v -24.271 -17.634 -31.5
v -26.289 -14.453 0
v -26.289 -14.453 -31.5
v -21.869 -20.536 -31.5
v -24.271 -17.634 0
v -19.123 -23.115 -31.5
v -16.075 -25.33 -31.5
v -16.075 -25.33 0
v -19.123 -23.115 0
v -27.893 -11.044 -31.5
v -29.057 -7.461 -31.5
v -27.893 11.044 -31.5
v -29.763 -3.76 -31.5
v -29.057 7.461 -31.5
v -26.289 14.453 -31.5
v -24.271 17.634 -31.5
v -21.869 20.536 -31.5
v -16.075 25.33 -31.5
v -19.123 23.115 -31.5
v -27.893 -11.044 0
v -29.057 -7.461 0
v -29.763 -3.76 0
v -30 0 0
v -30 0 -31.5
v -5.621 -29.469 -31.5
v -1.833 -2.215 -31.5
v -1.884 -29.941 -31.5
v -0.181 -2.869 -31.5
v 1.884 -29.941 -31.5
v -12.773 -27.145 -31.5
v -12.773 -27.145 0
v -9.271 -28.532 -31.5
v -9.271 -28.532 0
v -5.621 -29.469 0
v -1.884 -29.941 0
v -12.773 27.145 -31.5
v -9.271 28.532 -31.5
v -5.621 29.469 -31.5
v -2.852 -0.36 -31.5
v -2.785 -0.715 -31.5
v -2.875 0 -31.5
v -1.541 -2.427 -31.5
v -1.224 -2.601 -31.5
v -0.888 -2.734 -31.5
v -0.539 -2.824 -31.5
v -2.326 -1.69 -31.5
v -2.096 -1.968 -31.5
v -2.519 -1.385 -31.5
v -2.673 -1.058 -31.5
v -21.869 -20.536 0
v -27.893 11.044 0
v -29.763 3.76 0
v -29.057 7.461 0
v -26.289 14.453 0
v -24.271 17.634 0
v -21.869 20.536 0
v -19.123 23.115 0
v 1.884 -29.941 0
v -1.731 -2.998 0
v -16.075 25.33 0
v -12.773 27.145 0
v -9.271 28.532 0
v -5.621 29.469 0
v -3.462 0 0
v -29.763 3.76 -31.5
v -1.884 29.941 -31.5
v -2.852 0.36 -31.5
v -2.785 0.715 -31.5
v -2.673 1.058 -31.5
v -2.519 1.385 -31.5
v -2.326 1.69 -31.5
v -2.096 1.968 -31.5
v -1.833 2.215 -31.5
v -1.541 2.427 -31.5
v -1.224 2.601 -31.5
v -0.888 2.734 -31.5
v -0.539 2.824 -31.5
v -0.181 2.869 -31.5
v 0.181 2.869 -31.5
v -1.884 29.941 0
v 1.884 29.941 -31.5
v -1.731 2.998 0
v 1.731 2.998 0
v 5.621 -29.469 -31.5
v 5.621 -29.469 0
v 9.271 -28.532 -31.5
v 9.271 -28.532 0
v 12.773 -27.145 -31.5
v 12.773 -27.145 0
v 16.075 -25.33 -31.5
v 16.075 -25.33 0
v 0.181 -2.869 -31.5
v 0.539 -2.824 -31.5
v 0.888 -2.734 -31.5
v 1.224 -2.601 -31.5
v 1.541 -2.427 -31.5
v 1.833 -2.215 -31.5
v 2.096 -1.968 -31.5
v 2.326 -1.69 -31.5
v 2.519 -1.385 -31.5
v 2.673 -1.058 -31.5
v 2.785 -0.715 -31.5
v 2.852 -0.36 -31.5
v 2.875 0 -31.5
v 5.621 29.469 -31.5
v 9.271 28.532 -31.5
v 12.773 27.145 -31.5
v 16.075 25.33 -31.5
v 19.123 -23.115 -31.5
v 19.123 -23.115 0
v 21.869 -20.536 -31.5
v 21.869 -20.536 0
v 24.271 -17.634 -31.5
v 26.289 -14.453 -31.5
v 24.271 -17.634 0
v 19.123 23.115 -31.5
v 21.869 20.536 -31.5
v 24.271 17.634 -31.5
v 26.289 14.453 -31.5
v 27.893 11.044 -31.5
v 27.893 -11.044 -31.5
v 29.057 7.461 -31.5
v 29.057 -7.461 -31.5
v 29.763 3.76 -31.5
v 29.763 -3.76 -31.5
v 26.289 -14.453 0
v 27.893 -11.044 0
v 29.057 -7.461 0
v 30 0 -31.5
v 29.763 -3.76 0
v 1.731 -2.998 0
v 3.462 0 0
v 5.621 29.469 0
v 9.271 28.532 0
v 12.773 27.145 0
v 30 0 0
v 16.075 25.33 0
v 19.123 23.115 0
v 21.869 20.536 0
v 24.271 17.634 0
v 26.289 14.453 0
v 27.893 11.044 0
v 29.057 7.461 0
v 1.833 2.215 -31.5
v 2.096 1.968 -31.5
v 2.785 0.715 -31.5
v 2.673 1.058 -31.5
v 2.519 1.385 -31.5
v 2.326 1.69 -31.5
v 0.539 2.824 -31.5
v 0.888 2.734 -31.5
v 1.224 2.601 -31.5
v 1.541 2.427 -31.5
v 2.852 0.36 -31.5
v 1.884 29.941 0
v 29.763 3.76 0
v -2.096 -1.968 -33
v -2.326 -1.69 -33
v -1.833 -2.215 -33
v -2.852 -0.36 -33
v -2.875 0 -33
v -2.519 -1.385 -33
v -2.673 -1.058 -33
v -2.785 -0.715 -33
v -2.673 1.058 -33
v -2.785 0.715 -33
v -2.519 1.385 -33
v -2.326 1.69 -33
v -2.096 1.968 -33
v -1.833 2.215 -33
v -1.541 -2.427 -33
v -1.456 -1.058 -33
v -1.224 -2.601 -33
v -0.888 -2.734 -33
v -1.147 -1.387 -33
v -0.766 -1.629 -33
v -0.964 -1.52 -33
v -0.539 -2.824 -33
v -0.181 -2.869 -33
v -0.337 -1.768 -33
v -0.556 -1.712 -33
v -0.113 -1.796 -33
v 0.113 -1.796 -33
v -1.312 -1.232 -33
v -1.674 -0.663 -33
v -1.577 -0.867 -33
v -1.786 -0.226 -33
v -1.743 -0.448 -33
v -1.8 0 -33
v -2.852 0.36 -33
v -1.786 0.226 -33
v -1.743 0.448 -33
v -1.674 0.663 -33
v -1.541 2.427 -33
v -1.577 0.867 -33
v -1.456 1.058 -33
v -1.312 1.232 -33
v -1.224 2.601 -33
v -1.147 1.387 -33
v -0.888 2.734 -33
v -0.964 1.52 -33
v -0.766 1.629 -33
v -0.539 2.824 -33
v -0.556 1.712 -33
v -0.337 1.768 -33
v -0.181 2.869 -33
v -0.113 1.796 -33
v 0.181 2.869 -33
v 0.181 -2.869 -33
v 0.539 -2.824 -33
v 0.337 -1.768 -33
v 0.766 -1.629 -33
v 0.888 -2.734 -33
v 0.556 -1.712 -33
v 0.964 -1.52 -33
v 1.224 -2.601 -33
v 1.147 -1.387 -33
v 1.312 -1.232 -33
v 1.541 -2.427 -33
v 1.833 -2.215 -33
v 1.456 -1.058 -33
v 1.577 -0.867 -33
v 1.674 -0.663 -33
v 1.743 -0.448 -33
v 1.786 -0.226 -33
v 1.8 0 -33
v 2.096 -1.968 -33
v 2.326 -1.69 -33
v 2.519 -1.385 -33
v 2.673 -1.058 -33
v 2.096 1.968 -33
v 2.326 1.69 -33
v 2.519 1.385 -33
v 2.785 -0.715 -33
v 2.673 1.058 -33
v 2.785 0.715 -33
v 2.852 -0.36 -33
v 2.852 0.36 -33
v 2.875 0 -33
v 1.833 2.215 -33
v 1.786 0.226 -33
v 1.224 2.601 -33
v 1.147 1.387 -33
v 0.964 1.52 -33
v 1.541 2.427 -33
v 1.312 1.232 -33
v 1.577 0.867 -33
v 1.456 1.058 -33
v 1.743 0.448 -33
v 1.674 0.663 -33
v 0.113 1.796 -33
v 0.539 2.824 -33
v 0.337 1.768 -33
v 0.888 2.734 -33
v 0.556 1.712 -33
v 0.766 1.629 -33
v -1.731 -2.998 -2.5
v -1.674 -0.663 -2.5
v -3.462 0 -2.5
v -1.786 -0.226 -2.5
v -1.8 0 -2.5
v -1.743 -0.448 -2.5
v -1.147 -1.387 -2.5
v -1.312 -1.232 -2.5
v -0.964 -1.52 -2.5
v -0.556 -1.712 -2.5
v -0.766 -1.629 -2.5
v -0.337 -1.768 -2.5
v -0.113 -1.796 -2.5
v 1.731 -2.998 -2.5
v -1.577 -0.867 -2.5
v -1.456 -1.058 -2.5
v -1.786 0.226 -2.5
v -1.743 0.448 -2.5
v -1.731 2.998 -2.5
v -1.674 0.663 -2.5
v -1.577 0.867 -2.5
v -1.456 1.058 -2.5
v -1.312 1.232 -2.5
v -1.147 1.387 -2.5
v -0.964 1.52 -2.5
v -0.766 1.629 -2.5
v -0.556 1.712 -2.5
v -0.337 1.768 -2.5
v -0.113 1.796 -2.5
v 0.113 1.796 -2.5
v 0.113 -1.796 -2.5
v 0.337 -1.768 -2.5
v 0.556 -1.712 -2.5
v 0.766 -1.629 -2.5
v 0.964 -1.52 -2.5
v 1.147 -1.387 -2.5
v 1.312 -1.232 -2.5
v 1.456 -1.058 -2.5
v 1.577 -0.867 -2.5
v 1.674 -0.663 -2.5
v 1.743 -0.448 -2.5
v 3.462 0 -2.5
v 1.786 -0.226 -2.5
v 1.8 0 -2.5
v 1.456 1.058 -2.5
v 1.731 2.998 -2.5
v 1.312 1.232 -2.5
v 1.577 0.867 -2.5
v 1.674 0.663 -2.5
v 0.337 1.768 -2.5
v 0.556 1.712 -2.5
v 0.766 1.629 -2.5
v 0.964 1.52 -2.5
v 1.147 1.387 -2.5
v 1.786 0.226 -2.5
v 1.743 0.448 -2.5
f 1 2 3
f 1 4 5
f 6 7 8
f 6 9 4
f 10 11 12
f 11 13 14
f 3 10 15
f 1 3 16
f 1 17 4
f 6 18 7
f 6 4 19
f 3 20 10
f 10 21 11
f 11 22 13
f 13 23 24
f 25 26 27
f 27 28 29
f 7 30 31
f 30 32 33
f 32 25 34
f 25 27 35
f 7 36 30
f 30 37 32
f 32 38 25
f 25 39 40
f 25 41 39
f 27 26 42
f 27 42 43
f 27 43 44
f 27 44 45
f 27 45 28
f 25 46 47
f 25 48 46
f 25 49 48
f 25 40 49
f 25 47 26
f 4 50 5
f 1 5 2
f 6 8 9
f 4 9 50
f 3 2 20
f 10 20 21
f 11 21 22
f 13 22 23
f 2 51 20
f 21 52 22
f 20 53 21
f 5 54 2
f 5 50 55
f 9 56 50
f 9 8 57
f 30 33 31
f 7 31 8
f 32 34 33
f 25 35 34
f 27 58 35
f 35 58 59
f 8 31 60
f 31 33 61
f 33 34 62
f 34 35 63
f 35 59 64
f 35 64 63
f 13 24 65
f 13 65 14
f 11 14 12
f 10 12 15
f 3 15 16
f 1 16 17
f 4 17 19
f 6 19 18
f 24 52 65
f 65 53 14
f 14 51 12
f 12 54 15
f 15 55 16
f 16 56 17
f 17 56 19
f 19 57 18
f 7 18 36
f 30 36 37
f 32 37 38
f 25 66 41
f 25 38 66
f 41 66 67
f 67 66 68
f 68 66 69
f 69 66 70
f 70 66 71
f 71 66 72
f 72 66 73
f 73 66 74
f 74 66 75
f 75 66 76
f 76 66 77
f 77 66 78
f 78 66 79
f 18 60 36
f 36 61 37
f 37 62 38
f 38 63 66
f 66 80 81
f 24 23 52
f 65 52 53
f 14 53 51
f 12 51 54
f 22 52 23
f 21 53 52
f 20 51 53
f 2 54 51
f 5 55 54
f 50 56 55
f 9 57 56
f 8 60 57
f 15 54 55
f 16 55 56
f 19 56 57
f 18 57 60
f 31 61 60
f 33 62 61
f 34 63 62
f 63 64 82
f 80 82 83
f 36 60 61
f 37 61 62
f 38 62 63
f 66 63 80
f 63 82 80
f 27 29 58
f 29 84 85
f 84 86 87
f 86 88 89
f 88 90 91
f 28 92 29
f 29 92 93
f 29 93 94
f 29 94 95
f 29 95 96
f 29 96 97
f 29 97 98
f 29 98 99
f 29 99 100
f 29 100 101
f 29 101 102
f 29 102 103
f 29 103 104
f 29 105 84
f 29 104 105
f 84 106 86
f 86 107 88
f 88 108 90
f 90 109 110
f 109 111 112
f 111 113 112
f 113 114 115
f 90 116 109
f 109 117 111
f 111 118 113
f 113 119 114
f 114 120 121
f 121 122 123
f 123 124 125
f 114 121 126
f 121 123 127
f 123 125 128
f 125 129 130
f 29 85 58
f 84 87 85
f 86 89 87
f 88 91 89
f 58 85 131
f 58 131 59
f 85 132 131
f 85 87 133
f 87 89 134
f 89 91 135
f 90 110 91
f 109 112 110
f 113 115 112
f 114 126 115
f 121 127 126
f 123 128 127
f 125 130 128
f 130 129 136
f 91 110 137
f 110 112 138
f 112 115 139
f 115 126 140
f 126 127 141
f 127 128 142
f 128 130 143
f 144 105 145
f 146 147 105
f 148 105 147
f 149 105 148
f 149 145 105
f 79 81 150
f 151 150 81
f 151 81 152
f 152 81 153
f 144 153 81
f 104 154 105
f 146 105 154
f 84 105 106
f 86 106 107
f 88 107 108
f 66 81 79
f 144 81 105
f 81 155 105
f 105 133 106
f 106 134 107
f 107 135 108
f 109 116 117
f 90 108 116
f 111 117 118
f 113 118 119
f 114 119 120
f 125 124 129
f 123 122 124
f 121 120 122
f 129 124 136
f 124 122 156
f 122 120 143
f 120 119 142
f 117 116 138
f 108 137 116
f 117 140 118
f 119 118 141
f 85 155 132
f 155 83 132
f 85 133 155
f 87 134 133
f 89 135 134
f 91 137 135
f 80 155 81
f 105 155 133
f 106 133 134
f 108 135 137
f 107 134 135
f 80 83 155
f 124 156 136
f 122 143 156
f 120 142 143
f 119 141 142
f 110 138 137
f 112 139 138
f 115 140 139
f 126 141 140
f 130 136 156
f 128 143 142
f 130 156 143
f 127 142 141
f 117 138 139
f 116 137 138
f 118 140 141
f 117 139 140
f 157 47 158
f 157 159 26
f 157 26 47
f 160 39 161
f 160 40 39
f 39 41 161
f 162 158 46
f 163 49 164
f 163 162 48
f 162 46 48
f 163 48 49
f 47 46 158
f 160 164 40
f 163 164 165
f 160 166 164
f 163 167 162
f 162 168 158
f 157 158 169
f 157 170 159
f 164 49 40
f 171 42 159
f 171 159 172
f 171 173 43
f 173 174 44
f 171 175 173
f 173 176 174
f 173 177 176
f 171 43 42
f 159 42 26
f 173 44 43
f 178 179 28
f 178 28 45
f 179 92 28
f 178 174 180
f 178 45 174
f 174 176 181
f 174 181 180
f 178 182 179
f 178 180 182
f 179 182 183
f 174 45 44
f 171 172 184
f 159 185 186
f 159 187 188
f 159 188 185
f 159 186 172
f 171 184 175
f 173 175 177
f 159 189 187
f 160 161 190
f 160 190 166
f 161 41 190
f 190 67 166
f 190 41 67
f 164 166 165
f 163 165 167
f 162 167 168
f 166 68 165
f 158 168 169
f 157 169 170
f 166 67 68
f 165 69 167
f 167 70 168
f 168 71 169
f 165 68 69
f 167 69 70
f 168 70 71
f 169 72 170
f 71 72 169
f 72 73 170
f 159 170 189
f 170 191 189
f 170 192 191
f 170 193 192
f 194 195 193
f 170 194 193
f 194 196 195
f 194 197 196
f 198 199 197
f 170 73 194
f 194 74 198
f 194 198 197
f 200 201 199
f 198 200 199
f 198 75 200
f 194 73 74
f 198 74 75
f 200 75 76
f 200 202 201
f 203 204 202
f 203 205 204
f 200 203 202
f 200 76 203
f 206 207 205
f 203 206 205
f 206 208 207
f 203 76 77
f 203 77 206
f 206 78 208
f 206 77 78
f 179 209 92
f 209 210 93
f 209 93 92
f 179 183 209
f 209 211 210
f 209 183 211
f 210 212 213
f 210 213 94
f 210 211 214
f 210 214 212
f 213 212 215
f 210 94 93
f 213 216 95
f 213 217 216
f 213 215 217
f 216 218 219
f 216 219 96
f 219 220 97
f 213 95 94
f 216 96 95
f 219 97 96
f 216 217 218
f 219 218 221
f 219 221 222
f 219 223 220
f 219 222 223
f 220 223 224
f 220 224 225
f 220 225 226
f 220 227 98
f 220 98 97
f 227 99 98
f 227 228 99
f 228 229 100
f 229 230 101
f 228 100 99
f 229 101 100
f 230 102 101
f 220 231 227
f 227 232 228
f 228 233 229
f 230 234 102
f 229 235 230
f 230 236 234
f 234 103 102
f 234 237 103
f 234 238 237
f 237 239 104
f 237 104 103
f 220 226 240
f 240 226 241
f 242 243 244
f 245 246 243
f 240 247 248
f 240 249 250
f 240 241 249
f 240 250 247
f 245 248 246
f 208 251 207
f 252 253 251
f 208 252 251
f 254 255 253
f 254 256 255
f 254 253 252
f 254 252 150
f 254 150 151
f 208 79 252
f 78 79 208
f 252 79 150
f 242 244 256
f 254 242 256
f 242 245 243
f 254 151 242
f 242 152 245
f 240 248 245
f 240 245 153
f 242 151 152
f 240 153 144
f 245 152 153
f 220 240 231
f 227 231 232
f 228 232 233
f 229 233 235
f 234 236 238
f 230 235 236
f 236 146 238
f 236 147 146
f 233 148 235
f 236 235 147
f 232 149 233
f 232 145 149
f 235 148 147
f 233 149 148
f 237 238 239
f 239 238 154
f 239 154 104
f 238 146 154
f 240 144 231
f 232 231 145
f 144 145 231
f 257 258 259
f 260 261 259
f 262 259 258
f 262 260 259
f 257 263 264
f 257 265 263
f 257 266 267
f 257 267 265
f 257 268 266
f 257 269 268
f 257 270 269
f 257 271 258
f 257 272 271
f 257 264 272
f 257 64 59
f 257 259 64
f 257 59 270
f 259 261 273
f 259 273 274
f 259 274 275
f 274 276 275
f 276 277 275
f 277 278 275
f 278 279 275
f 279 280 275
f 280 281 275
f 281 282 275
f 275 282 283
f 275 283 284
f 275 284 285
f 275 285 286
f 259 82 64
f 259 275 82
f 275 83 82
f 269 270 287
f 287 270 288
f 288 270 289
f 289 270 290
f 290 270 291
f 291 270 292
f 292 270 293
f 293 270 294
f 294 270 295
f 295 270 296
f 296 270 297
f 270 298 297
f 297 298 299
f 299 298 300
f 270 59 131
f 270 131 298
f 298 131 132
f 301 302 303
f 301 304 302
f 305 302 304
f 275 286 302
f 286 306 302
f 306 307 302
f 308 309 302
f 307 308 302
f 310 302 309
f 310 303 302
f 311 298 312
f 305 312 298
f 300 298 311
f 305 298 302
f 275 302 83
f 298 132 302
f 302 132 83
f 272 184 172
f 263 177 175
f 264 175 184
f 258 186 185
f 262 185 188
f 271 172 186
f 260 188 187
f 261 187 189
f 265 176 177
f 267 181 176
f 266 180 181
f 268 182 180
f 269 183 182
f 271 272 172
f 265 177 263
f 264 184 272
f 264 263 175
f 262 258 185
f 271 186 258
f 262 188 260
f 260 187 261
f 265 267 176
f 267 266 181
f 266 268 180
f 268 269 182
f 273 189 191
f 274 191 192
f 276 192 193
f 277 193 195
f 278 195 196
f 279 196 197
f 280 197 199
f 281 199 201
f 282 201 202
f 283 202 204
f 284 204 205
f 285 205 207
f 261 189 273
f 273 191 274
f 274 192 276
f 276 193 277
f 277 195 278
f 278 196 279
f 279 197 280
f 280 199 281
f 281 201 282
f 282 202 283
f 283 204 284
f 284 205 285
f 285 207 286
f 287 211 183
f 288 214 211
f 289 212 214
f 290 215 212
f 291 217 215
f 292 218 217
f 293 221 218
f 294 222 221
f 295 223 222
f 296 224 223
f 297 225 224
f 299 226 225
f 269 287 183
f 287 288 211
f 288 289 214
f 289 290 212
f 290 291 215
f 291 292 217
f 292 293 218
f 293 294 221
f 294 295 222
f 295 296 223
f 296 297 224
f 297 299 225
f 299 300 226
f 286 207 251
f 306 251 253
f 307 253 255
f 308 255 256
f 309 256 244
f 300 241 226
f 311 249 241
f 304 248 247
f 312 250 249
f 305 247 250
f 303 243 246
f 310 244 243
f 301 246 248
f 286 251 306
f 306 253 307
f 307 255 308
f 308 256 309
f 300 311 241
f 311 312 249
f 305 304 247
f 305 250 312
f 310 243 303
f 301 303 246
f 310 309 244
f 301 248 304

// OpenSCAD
$fn = 50;


difference() {
	union() {
		translate(v = [0, 0, -31.5000000000]) {
			cylinder(h = 31.5000000000, r = 30.0000000000);
		}
		#translate(v = [0, 0, -33.0000000000]) {
			cylinder(h = 33, r = 2.8750000000);
		}
	}
	union() {
		translate(v = [0, 0, 0]) {
			rotate(a = [0, 0, 0]) {
				difference() {
					union() {
						translate(v = [0, 0, -2.5000000000]) {
							linear_extrude(height = 2.5000000000) {
								polygon(points = [[3.4620000000, 0.0000000000], [1.7310000000, 2.9981799479], [-1.7310000000, 2.9981799479], [-3.4620000000, 0.0000000000], [-1.7310000000, -2.9981799479], [1.7310000000, -2.9981799479]]);
							}
						}
					}
					union();
				}
			}
		}
		#translate(v = [0, 0, -100.0000000000]) {
			cylinder(h = 200, r = 1.8000000000);
		}
	}
}
